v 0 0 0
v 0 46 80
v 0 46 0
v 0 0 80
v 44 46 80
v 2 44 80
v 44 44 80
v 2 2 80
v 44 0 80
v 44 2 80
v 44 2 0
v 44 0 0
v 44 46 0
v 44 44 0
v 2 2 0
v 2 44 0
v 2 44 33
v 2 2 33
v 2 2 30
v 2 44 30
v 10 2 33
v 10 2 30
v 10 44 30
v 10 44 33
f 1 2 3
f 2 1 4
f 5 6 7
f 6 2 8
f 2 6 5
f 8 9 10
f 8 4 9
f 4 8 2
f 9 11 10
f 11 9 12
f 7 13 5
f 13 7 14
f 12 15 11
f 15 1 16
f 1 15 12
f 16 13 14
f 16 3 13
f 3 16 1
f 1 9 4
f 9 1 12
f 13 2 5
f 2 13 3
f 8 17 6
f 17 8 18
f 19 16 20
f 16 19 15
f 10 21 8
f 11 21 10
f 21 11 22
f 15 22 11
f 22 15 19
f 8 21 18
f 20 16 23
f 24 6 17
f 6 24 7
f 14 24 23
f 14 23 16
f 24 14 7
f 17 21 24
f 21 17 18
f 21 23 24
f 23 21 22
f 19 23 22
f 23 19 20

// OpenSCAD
// 42
// 31
// 5

union() {
    difference() {
        cube([42 + 2, 42 + 2 + 2, 80]);

        translate([2, 2, -1]) {
            cube([43, 42, 82]);
        }
    }

    translate([0, 0, 30]) {
        cube([10, 42 + 2 + 2, 3]);
    }
}
